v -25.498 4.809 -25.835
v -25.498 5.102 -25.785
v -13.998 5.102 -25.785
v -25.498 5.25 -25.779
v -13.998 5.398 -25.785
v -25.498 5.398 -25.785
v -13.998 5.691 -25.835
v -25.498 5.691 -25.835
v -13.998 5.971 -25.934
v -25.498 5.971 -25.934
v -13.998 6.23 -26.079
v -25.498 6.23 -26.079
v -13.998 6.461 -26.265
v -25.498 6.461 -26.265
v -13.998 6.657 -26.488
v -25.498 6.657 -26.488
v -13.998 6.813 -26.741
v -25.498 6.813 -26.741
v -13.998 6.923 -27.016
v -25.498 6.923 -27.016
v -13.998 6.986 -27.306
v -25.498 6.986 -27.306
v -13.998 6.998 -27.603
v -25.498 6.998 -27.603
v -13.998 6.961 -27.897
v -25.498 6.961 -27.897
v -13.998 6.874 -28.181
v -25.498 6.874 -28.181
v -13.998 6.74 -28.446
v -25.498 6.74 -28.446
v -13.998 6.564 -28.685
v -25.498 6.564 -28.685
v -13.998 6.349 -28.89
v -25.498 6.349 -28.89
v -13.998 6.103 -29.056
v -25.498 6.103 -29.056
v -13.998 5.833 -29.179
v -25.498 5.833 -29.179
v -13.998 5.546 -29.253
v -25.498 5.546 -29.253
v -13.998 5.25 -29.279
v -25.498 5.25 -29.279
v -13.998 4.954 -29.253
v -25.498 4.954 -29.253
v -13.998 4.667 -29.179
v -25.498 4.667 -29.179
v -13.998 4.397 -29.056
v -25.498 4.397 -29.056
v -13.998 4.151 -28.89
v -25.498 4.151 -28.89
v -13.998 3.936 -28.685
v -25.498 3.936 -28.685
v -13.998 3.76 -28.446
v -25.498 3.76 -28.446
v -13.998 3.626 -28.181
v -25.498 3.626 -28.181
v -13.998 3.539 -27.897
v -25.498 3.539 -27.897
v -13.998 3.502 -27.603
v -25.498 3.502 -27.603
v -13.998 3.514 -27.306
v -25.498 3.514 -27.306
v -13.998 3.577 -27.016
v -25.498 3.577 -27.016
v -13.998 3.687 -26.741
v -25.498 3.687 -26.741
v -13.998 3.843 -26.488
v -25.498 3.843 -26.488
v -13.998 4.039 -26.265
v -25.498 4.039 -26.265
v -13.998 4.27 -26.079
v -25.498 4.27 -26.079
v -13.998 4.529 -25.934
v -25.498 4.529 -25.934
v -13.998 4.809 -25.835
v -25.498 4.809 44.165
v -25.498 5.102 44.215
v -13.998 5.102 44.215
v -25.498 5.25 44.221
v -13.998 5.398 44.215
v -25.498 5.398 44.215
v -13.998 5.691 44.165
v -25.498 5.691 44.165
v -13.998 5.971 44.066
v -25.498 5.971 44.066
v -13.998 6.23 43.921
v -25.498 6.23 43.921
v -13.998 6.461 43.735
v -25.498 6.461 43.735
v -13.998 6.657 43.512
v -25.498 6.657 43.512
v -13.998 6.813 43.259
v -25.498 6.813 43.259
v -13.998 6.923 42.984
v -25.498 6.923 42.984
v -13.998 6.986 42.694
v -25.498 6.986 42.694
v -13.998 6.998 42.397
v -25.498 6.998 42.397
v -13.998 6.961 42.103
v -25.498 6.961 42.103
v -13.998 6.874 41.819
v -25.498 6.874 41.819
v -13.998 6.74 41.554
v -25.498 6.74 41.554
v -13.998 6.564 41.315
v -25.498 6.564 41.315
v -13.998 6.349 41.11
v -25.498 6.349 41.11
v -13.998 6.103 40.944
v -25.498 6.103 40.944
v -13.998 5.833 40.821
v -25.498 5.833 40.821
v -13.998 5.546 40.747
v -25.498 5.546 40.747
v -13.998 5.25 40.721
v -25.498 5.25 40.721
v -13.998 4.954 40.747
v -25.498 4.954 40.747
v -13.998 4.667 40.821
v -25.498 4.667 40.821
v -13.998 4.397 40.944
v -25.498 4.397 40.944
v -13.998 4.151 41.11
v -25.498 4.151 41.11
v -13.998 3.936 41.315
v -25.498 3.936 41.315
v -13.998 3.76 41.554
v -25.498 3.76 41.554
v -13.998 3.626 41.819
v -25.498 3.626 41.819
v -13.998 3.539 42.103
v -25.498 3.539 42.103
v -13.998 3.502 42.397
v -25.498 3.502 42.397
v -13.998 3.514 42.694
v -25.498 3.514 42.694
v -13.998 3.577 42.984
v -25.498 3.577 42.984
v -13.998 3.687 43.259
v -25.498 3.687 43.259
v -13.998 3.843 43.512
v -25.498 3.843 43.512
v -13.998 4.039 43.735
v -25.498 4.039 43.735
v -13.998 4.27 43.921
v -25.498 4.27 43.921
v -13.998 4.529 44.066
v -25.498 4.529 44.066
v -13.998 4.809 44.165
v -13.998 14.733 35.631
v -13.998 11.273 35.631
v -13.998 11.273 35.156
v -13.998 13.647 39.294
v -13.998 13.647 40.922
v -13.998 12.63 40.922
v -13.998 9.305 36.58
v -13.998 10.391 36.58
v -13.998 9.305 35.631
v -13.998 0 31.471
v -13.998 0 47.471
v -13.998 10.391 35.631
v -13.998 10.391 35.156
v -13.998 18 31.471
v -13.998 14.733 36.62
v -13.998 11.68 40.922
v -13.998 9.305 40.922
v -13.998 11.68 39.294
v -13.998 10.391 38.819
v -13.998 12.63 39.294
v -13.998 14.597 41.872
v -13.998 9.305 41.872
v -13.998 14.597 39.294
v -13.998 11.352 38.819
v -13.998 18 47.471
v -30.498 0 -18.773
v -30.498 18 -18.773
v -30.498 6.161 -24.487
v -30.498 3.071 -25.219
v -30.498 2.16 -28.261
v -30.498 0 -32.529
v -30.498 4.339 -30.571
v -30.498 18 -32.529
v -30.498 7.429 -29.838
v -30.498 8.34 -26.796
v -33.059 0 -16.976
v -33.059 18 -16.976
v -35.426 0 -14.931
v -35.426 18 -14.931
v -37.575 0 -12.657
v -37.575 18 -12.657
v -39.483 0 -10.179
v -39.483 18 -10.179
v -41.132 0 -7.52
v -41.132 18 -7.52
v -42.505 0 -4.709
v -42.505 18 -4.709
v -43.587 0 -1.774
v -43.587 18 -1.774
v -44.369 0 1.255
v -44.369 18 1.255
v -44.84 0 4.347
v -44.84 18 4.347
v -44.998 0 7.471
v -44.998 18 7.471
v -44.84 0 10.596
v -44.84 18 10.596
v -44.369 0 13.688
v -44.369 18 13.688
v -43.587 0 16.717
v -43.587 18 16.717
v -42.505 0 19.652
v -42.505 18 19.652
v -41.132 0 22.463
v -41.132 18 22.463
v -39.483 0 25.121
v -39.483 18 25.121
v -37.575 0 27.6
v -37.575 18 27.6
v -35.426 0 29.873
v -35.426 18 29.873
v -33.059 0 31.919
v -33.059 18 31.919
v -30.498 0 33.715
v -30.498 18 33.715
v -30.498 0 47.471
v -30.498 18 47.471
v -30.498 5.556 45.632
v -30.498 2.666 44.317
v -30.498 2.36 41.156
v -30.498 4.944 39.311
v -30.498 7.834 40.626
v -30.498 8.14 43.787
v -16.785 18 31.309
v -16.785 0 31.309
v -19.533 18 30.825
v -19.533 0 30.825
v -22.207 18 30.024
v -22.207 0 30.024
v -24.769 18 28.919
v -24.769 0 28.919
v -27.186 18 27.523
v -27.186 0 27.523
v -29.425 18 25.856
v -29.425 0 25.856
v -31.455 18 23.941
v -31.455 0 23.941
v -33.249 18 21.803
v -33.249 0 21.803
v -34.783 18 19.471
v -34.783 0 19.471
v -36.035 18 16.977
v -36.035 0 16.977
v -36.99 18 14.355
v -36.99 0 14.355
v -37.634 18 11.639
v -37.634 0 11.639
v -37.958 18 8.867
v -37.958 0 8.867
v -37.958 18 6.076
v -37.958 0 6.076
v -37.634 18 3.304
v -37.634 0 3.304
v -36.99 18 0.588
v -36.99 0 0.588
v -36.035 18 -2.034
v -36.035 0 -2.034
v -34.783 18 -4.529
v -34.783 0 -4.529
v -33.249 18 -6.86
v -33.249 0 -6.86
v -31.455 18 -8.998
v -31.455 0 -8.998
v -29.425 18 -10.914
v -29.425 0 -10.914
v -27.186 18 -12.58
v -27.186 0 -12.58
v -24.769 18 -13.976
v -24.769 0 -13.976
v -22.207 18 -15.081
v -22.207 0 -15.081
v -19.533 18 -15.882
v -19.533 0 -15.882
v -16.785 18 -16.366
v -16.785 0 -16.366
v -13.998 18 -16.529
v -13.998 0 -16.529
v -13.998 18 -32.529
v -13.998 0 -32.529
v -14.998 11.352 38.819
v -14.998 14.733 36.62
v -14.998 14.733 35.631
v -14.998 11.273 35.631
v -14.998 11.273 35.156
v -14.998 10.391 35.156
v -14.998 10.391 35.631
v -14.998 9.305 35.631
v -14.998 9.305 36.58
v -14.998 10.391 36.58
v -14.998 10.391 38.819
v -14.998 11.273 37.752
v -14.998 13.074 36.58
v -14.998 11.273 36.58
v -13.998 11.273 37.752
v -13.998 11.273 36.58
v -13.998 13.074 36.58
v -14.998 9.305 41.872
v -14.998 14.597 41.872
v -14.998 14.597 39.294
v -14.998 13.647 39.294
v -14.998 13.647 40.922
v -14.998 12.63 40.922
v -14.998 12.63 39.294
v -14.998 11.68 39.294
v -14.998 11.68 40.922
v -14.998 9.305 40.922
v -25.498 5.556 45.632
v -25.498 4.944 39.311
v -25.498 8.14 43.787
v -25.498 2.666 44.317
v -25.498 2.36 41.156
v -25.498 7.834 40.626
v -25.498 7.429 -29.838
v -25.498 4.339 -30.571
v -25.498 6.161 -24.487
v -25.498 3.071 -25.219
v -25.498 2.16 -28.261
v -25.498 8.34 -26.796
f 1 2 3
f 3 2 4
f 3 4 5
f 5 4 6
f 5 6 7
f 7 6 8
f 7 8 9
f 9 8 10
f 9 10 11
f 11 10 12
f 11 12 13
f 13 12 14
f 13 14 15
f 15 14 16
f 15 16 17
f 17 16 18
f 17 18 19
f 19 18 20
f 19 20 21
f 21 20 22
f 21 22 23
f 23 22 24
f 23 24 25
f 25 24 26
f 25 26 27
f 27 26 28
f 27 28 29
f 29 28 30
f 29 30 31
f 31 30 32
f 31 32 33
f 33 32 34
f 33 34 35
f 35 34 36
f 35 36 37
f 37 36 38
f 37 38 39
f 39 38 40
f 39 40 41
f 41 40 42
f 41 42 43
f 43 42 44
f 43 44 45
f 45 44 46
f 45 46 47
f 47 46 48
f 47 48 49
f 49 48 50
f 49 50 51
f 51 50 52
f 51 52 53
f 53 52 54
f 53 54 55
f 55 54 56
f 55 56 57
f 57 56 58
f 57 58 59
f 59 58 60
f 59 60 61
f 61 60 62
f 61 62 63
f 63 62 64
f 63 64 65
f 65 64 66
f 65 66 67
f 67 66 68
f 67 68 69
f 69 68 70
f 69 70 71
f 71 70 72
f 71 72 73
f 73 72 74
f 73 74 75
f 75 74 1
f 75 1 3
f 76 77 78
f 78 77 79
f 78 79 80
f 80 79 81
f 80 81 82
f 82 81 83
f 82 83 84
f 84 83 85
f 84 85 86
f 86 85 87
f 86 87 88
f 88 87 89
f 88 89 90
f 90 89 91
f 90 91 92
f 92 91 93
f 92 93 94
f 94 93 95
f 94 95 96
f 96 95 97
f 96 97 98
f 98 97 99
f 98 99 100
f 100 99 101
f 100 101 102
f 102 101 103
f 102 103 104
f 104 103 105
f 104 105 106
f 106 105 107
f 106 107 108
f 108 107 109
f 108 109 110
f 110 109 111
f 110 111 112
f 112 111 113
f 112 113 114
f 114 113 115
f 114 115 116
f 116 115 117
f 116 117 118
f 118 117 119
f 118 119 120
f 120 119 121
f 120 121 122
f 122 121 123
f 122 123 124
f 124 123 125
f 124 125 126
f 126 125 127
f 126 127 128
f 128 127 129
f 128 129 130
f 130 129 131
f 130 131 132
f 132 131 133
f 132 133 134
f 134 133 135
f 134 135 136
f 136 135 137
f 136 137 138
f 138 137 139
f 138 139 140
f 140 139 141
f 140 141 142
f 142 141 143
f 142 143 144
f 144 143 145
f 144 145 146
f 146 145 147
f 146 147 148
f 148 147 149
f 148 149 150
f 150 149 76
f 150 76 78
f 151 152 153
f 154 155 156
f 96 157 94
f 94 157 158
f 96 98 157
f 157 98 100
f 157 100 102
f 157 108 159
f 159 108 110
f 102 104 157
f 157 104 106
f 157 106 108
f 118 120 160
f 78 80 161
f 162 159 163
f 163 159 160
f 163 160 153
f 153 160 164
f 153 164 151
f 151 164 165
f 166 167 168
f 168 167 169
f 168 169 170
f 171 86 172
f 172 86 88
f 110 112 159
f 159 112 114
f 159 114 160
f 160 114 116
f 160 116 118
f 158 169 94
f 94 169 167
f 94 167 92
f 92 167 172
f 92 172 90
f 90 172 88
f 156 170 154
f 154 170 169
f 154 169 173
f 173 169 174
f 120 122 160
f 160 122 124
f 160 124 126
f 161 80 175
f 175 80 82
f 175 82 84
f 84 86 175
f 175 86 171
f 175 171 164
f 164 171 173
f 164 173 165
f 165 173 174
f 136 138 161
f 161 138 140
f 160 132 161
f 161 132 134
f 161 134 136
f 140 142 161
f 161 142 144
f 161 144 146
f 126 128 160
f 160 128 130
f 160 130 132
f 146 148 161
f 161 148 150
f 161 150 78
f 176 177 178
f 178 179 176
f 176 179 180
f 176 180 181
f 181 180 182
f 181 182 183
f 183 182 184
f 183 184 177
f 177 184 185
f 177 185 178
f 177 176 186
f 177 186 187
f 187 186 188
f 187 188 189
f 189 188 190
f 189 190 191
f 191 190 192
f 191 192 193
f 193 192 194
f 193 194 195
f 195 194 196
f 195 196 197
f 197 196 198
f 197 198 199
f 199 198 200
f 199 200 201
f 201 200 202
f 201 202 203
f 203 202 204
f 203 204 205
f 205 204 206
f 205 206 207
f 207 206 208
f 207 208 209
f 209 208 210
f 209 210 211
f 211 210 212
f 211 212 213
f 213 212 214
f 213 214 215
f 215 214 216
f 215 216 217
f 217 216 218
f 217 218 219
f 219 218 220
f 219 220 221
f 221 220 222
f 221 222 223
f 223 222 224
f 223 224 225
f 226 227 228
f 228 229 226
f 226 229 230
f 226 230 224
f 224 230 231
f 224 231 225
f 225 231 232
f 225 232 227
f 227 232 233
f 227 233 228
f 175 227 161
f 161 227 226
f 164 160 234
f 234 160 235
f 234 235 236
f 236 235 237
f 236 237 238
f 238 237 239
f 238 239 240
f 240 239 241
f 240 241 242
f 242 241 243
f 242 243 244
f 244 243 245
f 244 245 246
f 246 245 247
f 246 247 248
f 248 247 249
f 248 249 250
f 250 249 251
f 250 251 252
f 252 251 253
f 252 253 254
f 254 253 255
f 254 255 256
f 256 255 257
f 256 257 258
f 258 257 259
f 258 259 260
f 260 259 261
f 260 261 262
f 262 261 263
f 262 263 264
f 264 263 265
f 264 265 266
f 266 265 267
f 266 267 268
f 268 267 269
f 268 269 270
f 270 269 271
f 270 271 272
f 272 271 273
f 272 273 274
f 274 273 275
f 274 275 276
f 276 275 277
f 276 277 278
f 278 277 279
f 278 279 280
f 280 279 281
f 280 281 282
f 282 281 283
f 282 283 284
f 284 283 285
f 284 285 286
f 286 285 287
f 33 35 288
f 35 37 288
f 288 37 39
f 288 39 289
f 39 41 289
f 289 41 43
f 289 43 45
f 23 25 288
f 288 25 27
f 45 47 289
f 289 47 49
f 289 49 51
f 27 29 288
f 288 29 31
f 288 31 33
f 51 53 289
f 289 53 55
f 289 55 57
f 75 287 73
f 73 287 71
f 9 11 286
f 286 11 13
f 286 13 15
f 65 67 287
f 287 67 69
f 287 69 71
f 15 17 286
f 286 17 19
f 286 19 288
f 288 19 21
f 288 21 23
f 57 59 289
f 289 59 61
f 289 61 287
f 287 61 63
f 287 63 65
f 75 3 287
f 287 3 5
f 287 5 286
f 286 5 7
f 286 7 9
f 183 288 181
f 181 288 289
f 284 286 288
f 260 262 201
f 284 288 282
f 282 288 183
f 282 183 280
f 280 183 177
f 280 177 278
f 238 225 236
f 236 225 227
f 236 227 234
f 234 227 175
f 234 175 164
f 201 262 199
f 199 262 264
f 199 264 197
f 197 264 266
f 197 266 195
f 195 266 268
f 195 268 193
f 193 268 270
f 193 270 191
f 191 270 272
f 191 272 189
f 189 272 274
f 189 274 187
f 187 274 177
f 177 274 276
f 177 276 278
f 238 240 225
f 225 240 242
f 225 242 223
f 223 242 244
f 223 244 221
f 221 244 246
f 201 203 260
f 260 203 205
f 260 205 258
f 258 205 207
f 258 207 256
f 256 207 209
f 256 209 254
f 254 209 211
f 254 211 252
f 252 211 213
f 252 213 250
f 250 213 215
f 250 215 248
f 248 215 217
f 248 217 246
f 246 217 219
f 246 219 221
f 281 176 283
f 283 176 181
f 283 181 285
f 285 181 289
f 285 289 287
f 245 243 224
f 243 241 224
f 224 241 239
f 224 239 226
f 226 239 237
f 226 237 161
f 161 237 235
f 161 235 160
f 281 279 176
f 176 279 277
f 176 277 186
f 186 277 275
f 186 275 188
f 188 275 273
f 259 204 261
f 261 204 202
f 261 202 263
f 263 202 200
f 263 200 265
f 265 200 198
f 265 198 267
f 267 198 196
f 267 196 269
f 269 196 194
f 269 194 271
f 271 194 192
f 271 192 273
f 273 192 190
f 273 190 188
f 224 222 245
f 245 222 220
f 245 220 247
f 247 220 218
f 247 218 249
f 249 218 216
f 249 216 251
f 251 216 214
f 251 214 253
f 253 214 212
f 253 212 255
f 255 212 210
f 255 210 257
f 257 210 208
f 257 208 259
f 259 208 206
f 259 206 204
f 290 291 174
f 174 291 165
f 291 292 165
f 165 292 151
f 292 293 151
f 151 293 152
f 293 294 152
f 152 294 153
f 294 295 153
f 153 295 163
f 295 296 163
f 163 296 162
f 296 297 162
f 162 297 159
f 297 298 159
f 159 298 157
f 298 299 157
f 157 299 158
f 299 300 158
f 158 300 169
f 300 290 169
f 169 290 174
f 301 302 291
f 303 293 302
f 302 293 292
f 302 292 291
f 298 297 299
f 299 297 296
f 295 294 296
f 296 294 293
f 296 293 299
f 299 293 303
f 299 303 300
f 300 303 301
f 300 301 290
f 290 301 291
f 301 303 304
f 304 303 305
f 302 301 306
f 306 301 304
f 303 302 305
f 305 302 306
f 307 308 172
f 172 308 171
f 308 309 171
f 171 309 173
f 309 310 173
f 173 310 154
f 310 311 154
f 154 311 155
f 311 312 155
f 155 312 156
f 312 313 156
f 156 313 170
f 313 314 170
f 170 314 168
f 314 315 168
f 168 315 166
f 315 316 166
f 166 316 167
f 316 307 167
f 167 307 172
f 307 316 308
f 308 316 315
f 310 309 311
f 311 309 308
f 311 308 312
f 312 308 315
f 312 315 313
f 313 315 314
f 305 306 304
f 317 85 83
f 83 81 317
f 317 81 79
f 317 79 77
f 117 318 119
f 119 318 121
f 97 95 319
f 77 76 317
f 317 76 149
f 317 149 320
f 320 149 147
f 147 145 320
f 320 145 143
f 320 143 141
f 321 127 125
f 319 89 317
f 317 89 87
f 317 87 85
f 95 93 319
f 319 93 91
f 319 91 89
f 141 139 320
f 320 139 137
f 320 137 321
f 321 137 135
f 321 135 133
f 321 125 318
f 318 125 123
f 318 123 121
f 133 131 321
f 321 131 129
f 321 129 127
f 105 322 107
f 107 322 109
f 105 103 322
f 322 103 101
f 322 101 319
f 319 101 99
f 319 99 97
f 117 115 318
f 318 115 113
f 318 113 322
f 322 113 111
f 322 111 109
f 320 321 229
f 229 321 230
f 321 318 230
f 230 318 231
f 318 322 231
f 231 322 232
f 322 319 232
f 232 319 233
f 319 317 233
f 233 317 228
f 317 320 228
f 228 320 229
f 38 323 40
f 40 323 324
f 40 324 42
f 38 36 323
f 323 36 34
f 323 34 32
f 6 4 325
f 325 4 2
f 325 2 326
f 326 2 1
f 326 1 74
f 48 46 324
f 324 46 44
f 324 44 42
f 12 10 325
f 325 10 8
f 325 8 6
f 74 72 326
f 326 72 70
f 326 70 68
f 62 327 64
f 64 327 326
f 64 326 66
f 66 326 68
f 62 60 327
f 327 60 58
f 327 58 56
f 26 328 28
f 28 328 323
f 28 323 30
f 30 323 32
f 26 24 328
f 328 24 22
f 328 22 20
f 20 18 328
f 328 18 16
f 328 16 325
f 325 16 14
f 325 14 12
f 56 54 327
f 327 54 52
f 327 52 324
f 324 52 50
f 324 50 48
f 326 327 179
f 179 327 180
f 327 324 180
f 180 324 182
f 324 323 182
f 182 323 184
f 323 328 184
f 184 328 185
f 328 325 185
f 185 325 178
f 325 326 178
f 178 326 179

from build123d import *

# Parameters (mm, degrees)
BOSS_EXTRUDE1_DEPTH = 18
SKETCH2_R           = 1.75
CUT_EXTRUDE1_DEPTH  = 32
CUT_EXTRUDE2_DEPTH  = 1
CUT_EXTRUDE3_DEPTH  = 5


with BuildPart() as part:
    # Sketch1 → Boss-Extrude1 (new body)
    with BuildSketch(Plane(origin=(0, 0, 0), x_dir=(1, 0, 0), z_dir=(0, 1, 0))):
        with BuildLine():
            Line((-13.998275301, 32.528571429), (-30.498275301, 32.528571429))
            Line((-30.498275301, 32.528571429), (-30.498275301, 18.772618373))
            ThreePointArc((-30.498275301, 18.772618373), (-22.584151632, 22.315862806), (-13.998275301, 23.528571429))
            Line((-13.998275301, 23.528571429), (-13.998275301, 32.528571429))
        make_face()
        with BuildLine():
            ThreePointArc((-13.998275301, 23.528571429), (-22.584151632, 22.315862806), (-30.498275301, 18.772618373))
            ThreePointArc((-30.498275301, 18.772618373), (-44.998275301, -7.471428571), (-30.498275301, -33.715475515))
            ThreePointArc((-30.498275301, -33.715475515), (-22.584151632, -37.258719949), (-13.998275301, -38.471428571))
            Line((-13.998275301, -38.471428571), (-13.998275301, -31.471428571))
            ThreePointArc((-13.998275301, -31.471428571), (-37.998275301, -7.471428571), (-13.998275301, 16.528571429))
            Line((-13.998275301, 16.528571429), (-13.998275301, 23.528571429))
        make_face()
        with BuildLine():
            Line((-30.498275301, -33.715475515), (-30.498275301, -47.471428571))
            Line((-30.498275301, -47.471428571), (-13.998275301, -47.471428571))
            Line((-13.998275301, -47.471428571), (-13.998275301, -38.471428571))
            ThreePointArc((-13.998275301, -38.471428571), (-22.584151632, -37.258719949), (-30.498275301, -33.715475515))
        make_face()
    extrude(amount=BOSS_EXTRUDE1_DEPTH)

    # Sketch2 → Cut-Extrude1 (cut, through all)
    with BuildSketch(Plane(origin=(-13.998275301, 0, 0), x_dir=(0, 0, -1), z_dir=(1, 0, 0))):
        with Locations((-42.471428571, 5.25)):
            Circle(SKETCH2_R)
        with Locations((27.528571429, 5.25)):
            Circle(SKETCH2_R)
    extrude(amount=-CUT_EXTRUDE1_DEPTH, mode=Mode.SUBTRACT)

    # Sketch3 → Cut-Extrude2 (cut)
    with BuildSketch(Plane(origin=(-13.998275301, 0, 0), x_dir=(0, 0, -1), z_dir=(1, 0, 0))):
        Polygon((-41.872123333, 14.596956651), (-39.29413188, 14.596956651), (-39.29413188, 13.647170326), (-40.922337009, 13.647170326), (-40.922337009, 12.629542121), (-39.29413188, 12.629542121), (-39.29413188, 11.679755796), (-40.922337009, 11.679755796), (-40.922337009, 9.305289984), (-41.872123333, 9.305289984), align=None)
        Polygon((-36.619677754, 14.732640412), (-35.630670342, 14.732640412), (-35.630670342, 11.272704514), (-35.15577718, 11.272704514), (-35.15577718, 10.39076007), (-35.630670342, 10.39076007), (-35.630670342, 9.305289984), (-36.580456667, 9.305289984), (-36.580456667, 10.39076007), (-38.819238718, 10.39076007), (-38.819238718, 11.352206718), align=None)
        Polygon((-36.580456667, 11.272704514), (-36.580456667, 13.073694431), (-37.751789132, 11.272704514), align=None, mode=Mode.SUBTRACT)
    extrude(amount=-CUT_EXTRUDE2_DEPTH, mode=Mode.SUBTRACT)

    # Sketch4 → Cut-Extrude3 (cut)
    with BuildSketch(Plane.ZY.offset(30.498275301)):
        Polygon((-25.218846283, 3.070893971), (-24.486547677, 6.160727637), (-26.796272822, 8.339833666), (-29.838296574, 7.429106029), (-30.57059518, 4.339272363), (-28.260870035, 2.160166334), align=None)
        Polygon((44.316873767, 2.665882092), (45.632062924, 5.556143466), (43.786617729, 8.140261375), (40.625983376, 7.834117908), (39.310794219, 4.943856534), (41.156239414, 2.359738625), align=None)
    extrude(amount=-CUT_EXTRUDE3_DEPTH, mode=Mode.SUBTRACT)


solid = part.part
